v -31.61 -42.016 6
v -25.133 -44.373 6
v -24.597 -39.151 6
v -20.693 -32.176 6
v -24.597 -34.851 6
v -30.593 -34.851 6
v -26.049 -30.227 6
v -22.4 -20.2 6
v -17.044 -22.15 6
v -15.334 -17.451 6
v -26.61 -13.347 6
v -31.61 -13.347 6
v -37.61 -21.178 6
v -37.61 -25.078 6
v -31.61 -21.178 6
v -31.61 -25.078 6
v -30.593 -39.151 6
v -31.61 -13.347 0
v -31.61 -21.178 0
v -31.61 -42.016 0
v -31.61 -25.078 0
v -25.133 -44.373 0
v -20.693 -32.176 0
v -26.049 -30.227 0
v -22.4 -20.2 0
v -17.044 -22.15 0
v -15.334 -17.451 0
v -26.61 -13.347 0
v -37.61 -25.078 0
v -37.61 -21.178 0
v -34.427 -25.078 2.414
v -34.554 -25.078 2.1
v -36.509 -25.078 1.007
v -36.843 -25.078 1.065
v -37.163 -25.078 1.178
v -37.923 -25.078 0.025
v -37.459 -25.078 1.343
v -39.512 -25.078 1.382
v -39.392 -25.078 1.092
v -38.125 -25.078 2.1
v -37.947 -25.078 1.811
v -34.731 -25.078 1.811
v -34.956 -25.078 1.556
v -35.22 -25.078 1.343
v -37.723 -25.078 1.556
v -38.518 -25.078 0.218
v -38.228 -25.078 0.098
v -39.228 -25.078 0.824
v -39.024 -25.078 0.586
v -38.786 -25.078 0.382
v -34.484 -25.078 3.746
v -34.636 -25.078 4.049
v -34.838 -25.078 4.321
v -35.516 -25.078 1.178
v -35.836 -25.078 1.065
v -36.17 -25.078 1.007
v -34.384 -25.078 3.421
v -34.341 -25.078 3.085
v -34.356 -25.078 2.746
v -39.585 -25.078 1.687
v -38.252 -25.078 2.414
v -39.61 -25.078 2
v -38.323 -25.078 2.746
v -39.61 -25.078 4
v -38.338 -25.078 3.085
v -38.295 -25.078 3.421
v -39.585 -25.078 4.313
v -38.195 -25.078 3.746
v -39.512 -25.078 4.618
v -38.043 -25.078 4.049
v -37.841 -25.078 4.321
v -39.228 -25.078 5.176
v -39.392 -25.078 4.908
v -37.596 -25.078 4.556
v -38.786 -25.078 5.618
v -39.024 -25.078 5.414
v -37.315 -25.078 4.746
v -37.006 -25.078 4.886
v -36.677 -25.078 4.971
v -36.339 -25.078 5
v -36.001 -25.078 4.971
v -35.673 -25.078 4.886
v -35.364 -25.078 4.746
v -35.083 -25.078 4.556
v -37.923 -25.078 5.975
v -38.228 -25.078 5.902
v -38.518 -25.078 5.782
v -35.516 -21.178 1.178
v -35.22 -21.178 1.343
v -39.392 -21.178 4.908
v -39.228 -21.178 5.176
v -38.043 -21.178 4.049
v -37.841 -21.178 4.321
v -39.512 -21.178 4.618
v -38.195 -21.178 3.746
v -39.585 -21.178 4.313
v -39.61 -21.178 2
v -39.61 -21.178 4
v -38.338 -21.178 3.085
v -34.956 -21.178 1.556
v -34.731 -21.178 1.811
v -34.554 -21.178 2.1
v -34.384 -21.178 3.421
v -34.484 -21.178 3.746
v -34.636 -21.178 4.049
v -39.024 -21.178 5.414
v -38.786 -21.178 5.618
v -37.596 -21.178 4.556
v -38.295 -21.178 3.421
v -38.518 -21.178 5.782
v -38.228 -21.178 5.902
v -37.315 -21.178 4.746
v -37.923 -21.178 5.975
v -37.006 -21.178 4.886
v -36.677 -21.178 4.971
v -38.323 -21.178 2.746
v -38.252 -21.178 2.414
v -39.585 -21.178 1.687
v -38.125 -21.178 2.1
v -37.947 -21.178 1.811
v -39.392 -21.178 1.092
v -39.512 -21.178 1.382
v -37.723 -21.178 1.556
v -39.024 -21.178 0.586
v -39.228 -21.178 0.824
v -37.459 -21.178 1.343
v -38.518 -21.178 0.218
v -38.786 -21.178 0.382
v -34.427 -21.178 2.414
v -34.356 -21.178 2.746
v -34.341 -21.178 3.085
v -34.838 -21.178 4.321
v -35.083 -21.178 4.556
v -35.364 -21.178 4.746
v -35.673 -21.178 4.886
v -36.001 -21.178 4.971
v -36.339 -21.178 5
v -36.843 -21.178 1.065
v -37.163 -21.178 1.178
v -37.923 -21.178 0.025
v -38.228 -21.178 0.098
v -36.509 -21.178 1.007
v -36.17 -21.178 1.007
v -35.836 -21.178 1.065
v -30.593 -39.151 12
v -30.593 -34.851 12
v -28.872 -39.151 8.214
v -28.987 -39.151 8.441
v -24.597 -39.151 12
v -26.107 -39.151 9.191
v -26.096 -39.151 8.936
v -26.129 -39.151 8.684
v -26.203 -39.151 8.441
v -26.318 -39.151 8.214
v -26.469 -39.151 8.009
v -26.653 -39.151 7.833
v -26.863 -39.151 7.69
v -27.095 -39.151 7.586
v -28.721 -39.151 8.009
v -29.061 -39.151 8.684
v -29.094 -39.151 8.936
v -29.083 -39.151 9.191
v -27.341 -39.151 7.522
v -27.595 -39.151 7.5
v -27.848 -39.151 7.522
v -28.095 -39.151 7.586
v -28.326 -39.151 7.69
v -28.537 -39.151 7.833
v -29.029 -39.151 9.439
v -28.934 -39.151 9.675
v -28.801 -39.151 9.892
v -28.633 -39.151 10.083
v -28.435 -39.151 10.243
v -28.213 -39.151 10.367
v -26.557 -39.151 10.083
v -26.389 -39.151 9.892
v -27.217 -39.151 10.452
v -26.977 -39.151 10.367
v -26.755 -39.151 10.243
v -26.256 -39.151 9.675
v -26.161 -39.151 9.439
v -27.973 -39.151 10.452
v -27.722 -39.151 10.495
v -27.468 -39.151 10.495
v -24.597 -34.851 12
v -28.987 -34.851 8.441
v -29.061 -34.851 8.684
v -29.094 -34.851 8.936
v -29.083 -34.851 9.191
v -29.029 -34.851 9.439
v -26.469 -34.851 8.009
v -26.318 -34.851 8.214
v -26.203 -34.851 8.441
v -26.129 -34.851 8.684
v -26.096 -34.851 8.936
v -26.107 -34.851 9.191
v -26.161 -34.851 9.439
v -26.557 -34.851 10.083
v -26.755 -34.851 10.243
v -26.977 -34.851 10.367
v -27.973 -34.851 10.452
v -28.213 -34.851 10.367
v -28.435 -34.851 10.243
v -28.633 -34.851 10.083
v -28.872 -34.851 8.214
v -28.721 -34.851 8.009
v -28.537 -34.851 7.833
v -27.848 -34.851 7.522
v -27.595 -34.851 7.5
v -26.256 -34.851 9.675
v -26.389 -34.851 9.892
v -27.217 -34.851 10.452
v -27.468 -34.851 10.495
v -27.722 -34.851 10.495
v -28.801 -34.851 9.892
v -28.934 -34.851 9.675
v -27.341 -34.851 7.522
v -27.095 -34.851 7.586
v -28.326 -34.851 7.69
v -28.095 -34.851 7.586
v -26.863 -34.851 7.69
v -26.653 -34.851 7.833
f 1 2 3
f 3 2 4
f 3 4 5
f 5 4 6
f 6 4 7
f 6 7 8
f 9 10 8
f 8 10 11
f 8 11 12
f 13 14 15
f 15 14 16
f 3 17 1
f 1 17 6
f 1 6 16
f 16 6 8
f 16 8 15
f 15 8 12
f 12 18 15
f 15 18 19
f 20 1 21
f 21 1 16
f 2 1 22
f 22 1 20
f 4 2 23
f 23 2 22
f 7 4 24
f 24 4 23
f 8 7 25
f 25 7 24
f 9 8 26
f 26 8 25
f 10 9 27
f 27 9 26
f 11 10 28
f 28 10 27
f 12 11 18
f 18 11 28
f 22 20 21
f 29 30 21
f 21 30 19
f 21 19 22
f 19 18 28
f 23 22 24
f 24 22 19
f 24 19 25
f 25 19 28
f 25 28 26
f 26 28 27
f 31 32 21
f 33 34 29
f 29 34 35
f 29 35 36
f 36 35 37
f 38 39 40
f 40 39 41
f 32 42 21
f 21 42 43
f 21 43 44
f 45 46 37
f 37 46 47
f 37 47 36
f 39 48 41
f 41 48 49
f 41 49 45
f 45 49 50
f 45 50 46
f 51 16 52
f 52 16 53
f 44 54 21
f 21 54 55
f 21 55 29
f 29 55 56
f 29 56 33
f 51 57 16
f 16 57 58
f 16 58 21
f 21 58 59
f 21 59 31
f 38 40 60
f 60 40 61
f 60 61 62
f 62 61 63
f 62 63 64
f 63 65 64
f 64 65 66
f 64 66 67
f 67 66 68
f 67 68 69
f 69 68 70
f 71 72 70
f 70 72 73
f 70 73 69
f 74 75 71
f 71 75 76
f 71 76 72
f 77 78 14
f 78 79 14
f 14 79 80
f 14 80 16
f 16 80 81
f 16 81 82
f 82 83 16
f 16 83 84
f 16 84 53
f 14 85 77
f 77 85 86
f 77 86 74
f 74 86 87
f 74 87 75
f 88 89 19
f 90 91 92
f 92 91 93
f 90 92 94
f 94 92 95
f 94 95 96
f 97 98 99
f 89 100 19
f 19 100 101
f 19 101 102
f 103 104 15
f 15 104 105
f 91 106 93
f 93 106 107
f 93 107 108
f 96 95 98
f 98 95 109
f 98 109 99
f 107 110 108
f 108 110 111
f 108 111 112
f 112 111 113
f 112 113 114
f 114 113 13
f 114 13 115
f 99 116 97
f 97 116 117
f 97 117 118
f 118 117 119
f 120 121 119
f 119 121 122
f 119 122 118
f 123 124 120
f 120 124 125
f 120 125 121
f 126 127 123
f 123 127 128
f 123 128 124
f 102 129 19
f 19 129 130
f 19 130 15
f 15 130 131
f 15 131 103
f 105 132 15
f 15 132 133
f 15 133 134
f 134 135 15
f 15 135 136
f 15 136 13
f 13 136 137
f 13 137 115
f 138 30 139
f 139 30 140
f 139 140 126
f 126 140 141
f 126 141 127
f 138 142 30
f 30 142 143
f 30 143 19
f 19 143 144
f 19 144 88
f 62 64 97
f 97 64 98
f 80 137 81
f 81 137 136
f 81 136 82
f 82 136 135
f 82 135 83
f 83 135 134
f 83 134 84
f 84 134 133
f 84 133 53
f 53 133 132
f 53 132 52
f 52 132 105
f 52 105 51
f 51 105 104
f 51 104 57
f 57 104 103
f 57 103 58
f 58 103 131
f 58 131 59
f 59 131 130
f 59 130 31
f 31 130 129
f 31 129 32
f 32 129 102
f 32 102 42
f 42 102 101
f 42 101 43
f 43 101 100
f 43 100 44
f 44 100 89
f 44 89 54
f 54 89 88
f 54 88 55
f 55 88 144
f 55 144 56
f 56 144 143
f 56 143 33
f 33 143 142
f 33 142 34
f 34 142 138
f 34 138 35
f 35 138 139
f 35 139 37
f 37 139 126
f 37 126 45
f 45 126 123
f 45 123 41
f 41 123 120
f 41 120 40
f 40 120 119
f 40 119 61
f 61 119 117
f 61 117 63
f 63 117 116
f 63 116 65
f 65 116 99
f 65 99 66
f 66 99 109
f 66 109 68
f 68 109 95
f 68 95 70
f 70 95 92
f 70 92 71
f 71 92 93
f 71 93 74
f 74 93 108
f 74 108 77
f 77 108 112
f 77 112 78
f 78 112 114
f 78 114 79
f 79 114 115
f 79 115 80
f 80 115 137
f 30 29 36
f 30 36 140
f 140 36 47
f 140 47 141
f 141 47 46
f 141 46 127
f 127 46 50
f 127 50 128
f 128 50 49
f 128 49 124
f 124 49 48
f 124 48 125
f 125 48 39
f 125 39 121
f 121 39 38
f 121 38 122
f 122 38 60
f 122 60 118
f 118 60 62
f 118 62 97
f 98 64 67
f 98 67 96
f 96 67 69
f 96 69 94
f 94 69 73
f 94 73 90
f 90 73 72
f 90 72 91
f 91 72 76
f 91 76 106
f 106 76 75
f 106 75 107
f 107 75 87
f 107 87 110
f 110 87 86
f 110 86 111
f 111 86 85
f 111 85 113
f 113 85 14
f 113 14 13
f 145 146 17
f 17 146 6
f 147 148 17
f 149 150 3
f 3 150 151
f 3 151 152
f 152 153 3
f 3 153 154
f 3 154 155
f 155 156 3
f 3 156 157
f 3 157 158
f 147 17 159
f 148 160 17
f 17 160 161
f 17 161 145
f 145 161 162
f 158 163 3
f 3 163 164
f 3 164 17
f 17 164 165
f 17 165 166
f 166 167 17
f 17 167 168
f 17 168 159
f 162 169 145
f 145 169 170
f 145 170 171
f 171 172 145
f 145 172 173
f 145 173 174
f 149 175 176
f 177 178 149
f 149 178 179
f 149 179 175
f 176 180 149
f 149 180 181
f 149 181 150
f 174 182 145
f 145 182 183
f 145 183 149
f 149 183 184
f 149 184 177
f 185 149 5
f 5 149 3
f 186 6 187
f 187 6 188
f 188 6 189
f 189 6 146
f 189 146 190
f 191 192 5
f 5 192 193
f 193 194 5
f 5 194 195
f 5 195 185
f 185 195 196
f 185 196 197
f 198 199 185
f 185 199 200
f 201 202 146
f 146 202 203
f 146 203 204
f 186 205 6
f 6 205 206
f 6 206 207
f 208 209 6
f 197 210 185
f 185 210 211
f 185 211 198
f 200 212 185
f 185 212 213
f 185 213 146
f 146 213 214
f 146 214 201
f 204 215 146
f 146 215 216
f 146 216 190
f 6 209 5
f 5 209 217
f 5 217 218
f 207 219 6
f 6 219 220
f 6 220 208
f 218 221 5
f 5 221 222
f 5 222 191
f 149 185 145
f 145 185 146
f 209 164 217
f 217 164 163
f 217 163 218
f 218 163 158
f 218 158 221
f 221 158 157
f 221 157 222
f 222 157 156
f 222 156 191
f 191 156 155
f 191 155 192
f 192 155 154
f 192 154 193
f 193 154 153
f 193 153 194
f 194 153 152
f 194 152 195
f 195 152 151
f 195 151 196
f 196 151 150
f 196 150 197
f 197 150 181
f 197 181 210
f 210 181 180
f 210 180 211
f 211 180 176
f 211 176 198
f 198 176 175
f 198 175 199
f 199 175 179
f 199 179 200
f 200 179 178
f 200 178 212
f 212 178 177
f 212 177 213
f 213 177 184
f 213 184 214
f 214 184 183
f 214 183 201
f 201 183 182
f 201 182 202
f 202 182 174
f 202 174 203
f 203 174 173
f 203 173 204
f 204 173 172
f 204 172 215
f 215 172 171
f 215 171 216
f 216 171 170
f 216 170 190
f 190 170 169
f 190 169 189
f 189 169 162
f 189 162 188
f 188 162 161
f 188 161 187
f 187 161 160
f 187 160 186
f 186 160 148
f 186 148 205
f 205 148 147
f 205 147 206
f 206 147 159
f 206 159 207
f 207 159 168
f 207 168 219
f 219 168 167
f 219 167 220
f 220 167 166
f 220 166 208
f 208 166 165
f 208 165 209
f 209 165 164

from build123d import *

# Parameters (mm, degrees)
BOSS_EXTRUDE1_DEPTH = 6
SKETCH2_W           = 6
SKETCH2_H           = 3.9
BOSS_EXTRUDE2_DEPTH = 8
SKETCH3_R           = 2
CUT_EXTRUDE2_DEPTH  = 24.194962869
FILLET1_R           = 2
SKETCH6_W           = 5.996508816
SKETCH6_H           = 4.3
BOSS_EXTRUDE4_DEPTH = 6
SKETCH7_R           = 1.5
CUT_EXTRUDE3_DEPTH  = 26.803718238


with BuildPart() as part:
    # Sketch1 → Boss-Extrude1 (new body)
    with BuildSketch(Plane.XY):
        Polygon((-31.610053316, -13.34695045), (-31.610053316, -34.17695045), (-31.610053316, -42.01579246), (-25.132618973, -44.373385755), (-20.693197512, -32.176175537), (-26.049445451, -30.226660721), (-22.400090521, -20.200140457), (-17.043842583, -22.149655274), (-15.333741866, -17.45119217), (-26.610053316, -13.34695045), align=None)
    extrude(amount=BOSS_EXTRUDE1_DEPTH)

    # Sketch2 → Boss-Extrude2 (add)
    with BuildSketch(Plane.ZY.offset(31.610053316)):
        with Locations((3, -23.128422886)):
            Rectangle(SKETCH2_W, SKETCH2_H)
    extrude(amount=BOSS_EXTRUDE2_DEPTH)

    # Sketch3 → Cut-Extrude2 (cut, through all)
    with BuildSketch(Plane(origin=(0, -21.178422886, 0), x_dir=(1, 0, 0), z_dir=(0, 1, 0))):
        with Locations((-36.339467267, -3)):
            Circle(SKETCH3_R)
    extrude(amount=-CUT_EXTRUDE2_DEPTH, mode=Mode.SUBTRACT)

    # Fillet1
    fillet1_edges = [part.edges().sort_by_distance(p)[0] for p in [
        (-39.610053316, -23.128422886, 0),
        (-39.610053316, -23.128422886, 6),
    ]]
    fillet(fillet1_edges, radius=FILLET1_R)

    # Sketch6 → Boss-Extrude4 (add)
    with BuildSketch(Plane.XY.offset(6)):
        with Locations((-27.594946536, -37.000668688)):
            Rectangle(SKETCH6_W, SKETCH6_H)
    extrude(amount=BOSS_EXTRUDE4_DEPTH)

    # Sketch7 → Cut-Extrude3 (cut, through all)
    with BuildSketch(Plane.XZ.offset(39.150668688)):
        with Locations((-27.594946536, 9)):
            Circle(SKETCH7_R)
    extrude(amount=-CUT_EXTRUDE3_DEPTH, mode=Mode.SUBTRACT)


solid = part.part
